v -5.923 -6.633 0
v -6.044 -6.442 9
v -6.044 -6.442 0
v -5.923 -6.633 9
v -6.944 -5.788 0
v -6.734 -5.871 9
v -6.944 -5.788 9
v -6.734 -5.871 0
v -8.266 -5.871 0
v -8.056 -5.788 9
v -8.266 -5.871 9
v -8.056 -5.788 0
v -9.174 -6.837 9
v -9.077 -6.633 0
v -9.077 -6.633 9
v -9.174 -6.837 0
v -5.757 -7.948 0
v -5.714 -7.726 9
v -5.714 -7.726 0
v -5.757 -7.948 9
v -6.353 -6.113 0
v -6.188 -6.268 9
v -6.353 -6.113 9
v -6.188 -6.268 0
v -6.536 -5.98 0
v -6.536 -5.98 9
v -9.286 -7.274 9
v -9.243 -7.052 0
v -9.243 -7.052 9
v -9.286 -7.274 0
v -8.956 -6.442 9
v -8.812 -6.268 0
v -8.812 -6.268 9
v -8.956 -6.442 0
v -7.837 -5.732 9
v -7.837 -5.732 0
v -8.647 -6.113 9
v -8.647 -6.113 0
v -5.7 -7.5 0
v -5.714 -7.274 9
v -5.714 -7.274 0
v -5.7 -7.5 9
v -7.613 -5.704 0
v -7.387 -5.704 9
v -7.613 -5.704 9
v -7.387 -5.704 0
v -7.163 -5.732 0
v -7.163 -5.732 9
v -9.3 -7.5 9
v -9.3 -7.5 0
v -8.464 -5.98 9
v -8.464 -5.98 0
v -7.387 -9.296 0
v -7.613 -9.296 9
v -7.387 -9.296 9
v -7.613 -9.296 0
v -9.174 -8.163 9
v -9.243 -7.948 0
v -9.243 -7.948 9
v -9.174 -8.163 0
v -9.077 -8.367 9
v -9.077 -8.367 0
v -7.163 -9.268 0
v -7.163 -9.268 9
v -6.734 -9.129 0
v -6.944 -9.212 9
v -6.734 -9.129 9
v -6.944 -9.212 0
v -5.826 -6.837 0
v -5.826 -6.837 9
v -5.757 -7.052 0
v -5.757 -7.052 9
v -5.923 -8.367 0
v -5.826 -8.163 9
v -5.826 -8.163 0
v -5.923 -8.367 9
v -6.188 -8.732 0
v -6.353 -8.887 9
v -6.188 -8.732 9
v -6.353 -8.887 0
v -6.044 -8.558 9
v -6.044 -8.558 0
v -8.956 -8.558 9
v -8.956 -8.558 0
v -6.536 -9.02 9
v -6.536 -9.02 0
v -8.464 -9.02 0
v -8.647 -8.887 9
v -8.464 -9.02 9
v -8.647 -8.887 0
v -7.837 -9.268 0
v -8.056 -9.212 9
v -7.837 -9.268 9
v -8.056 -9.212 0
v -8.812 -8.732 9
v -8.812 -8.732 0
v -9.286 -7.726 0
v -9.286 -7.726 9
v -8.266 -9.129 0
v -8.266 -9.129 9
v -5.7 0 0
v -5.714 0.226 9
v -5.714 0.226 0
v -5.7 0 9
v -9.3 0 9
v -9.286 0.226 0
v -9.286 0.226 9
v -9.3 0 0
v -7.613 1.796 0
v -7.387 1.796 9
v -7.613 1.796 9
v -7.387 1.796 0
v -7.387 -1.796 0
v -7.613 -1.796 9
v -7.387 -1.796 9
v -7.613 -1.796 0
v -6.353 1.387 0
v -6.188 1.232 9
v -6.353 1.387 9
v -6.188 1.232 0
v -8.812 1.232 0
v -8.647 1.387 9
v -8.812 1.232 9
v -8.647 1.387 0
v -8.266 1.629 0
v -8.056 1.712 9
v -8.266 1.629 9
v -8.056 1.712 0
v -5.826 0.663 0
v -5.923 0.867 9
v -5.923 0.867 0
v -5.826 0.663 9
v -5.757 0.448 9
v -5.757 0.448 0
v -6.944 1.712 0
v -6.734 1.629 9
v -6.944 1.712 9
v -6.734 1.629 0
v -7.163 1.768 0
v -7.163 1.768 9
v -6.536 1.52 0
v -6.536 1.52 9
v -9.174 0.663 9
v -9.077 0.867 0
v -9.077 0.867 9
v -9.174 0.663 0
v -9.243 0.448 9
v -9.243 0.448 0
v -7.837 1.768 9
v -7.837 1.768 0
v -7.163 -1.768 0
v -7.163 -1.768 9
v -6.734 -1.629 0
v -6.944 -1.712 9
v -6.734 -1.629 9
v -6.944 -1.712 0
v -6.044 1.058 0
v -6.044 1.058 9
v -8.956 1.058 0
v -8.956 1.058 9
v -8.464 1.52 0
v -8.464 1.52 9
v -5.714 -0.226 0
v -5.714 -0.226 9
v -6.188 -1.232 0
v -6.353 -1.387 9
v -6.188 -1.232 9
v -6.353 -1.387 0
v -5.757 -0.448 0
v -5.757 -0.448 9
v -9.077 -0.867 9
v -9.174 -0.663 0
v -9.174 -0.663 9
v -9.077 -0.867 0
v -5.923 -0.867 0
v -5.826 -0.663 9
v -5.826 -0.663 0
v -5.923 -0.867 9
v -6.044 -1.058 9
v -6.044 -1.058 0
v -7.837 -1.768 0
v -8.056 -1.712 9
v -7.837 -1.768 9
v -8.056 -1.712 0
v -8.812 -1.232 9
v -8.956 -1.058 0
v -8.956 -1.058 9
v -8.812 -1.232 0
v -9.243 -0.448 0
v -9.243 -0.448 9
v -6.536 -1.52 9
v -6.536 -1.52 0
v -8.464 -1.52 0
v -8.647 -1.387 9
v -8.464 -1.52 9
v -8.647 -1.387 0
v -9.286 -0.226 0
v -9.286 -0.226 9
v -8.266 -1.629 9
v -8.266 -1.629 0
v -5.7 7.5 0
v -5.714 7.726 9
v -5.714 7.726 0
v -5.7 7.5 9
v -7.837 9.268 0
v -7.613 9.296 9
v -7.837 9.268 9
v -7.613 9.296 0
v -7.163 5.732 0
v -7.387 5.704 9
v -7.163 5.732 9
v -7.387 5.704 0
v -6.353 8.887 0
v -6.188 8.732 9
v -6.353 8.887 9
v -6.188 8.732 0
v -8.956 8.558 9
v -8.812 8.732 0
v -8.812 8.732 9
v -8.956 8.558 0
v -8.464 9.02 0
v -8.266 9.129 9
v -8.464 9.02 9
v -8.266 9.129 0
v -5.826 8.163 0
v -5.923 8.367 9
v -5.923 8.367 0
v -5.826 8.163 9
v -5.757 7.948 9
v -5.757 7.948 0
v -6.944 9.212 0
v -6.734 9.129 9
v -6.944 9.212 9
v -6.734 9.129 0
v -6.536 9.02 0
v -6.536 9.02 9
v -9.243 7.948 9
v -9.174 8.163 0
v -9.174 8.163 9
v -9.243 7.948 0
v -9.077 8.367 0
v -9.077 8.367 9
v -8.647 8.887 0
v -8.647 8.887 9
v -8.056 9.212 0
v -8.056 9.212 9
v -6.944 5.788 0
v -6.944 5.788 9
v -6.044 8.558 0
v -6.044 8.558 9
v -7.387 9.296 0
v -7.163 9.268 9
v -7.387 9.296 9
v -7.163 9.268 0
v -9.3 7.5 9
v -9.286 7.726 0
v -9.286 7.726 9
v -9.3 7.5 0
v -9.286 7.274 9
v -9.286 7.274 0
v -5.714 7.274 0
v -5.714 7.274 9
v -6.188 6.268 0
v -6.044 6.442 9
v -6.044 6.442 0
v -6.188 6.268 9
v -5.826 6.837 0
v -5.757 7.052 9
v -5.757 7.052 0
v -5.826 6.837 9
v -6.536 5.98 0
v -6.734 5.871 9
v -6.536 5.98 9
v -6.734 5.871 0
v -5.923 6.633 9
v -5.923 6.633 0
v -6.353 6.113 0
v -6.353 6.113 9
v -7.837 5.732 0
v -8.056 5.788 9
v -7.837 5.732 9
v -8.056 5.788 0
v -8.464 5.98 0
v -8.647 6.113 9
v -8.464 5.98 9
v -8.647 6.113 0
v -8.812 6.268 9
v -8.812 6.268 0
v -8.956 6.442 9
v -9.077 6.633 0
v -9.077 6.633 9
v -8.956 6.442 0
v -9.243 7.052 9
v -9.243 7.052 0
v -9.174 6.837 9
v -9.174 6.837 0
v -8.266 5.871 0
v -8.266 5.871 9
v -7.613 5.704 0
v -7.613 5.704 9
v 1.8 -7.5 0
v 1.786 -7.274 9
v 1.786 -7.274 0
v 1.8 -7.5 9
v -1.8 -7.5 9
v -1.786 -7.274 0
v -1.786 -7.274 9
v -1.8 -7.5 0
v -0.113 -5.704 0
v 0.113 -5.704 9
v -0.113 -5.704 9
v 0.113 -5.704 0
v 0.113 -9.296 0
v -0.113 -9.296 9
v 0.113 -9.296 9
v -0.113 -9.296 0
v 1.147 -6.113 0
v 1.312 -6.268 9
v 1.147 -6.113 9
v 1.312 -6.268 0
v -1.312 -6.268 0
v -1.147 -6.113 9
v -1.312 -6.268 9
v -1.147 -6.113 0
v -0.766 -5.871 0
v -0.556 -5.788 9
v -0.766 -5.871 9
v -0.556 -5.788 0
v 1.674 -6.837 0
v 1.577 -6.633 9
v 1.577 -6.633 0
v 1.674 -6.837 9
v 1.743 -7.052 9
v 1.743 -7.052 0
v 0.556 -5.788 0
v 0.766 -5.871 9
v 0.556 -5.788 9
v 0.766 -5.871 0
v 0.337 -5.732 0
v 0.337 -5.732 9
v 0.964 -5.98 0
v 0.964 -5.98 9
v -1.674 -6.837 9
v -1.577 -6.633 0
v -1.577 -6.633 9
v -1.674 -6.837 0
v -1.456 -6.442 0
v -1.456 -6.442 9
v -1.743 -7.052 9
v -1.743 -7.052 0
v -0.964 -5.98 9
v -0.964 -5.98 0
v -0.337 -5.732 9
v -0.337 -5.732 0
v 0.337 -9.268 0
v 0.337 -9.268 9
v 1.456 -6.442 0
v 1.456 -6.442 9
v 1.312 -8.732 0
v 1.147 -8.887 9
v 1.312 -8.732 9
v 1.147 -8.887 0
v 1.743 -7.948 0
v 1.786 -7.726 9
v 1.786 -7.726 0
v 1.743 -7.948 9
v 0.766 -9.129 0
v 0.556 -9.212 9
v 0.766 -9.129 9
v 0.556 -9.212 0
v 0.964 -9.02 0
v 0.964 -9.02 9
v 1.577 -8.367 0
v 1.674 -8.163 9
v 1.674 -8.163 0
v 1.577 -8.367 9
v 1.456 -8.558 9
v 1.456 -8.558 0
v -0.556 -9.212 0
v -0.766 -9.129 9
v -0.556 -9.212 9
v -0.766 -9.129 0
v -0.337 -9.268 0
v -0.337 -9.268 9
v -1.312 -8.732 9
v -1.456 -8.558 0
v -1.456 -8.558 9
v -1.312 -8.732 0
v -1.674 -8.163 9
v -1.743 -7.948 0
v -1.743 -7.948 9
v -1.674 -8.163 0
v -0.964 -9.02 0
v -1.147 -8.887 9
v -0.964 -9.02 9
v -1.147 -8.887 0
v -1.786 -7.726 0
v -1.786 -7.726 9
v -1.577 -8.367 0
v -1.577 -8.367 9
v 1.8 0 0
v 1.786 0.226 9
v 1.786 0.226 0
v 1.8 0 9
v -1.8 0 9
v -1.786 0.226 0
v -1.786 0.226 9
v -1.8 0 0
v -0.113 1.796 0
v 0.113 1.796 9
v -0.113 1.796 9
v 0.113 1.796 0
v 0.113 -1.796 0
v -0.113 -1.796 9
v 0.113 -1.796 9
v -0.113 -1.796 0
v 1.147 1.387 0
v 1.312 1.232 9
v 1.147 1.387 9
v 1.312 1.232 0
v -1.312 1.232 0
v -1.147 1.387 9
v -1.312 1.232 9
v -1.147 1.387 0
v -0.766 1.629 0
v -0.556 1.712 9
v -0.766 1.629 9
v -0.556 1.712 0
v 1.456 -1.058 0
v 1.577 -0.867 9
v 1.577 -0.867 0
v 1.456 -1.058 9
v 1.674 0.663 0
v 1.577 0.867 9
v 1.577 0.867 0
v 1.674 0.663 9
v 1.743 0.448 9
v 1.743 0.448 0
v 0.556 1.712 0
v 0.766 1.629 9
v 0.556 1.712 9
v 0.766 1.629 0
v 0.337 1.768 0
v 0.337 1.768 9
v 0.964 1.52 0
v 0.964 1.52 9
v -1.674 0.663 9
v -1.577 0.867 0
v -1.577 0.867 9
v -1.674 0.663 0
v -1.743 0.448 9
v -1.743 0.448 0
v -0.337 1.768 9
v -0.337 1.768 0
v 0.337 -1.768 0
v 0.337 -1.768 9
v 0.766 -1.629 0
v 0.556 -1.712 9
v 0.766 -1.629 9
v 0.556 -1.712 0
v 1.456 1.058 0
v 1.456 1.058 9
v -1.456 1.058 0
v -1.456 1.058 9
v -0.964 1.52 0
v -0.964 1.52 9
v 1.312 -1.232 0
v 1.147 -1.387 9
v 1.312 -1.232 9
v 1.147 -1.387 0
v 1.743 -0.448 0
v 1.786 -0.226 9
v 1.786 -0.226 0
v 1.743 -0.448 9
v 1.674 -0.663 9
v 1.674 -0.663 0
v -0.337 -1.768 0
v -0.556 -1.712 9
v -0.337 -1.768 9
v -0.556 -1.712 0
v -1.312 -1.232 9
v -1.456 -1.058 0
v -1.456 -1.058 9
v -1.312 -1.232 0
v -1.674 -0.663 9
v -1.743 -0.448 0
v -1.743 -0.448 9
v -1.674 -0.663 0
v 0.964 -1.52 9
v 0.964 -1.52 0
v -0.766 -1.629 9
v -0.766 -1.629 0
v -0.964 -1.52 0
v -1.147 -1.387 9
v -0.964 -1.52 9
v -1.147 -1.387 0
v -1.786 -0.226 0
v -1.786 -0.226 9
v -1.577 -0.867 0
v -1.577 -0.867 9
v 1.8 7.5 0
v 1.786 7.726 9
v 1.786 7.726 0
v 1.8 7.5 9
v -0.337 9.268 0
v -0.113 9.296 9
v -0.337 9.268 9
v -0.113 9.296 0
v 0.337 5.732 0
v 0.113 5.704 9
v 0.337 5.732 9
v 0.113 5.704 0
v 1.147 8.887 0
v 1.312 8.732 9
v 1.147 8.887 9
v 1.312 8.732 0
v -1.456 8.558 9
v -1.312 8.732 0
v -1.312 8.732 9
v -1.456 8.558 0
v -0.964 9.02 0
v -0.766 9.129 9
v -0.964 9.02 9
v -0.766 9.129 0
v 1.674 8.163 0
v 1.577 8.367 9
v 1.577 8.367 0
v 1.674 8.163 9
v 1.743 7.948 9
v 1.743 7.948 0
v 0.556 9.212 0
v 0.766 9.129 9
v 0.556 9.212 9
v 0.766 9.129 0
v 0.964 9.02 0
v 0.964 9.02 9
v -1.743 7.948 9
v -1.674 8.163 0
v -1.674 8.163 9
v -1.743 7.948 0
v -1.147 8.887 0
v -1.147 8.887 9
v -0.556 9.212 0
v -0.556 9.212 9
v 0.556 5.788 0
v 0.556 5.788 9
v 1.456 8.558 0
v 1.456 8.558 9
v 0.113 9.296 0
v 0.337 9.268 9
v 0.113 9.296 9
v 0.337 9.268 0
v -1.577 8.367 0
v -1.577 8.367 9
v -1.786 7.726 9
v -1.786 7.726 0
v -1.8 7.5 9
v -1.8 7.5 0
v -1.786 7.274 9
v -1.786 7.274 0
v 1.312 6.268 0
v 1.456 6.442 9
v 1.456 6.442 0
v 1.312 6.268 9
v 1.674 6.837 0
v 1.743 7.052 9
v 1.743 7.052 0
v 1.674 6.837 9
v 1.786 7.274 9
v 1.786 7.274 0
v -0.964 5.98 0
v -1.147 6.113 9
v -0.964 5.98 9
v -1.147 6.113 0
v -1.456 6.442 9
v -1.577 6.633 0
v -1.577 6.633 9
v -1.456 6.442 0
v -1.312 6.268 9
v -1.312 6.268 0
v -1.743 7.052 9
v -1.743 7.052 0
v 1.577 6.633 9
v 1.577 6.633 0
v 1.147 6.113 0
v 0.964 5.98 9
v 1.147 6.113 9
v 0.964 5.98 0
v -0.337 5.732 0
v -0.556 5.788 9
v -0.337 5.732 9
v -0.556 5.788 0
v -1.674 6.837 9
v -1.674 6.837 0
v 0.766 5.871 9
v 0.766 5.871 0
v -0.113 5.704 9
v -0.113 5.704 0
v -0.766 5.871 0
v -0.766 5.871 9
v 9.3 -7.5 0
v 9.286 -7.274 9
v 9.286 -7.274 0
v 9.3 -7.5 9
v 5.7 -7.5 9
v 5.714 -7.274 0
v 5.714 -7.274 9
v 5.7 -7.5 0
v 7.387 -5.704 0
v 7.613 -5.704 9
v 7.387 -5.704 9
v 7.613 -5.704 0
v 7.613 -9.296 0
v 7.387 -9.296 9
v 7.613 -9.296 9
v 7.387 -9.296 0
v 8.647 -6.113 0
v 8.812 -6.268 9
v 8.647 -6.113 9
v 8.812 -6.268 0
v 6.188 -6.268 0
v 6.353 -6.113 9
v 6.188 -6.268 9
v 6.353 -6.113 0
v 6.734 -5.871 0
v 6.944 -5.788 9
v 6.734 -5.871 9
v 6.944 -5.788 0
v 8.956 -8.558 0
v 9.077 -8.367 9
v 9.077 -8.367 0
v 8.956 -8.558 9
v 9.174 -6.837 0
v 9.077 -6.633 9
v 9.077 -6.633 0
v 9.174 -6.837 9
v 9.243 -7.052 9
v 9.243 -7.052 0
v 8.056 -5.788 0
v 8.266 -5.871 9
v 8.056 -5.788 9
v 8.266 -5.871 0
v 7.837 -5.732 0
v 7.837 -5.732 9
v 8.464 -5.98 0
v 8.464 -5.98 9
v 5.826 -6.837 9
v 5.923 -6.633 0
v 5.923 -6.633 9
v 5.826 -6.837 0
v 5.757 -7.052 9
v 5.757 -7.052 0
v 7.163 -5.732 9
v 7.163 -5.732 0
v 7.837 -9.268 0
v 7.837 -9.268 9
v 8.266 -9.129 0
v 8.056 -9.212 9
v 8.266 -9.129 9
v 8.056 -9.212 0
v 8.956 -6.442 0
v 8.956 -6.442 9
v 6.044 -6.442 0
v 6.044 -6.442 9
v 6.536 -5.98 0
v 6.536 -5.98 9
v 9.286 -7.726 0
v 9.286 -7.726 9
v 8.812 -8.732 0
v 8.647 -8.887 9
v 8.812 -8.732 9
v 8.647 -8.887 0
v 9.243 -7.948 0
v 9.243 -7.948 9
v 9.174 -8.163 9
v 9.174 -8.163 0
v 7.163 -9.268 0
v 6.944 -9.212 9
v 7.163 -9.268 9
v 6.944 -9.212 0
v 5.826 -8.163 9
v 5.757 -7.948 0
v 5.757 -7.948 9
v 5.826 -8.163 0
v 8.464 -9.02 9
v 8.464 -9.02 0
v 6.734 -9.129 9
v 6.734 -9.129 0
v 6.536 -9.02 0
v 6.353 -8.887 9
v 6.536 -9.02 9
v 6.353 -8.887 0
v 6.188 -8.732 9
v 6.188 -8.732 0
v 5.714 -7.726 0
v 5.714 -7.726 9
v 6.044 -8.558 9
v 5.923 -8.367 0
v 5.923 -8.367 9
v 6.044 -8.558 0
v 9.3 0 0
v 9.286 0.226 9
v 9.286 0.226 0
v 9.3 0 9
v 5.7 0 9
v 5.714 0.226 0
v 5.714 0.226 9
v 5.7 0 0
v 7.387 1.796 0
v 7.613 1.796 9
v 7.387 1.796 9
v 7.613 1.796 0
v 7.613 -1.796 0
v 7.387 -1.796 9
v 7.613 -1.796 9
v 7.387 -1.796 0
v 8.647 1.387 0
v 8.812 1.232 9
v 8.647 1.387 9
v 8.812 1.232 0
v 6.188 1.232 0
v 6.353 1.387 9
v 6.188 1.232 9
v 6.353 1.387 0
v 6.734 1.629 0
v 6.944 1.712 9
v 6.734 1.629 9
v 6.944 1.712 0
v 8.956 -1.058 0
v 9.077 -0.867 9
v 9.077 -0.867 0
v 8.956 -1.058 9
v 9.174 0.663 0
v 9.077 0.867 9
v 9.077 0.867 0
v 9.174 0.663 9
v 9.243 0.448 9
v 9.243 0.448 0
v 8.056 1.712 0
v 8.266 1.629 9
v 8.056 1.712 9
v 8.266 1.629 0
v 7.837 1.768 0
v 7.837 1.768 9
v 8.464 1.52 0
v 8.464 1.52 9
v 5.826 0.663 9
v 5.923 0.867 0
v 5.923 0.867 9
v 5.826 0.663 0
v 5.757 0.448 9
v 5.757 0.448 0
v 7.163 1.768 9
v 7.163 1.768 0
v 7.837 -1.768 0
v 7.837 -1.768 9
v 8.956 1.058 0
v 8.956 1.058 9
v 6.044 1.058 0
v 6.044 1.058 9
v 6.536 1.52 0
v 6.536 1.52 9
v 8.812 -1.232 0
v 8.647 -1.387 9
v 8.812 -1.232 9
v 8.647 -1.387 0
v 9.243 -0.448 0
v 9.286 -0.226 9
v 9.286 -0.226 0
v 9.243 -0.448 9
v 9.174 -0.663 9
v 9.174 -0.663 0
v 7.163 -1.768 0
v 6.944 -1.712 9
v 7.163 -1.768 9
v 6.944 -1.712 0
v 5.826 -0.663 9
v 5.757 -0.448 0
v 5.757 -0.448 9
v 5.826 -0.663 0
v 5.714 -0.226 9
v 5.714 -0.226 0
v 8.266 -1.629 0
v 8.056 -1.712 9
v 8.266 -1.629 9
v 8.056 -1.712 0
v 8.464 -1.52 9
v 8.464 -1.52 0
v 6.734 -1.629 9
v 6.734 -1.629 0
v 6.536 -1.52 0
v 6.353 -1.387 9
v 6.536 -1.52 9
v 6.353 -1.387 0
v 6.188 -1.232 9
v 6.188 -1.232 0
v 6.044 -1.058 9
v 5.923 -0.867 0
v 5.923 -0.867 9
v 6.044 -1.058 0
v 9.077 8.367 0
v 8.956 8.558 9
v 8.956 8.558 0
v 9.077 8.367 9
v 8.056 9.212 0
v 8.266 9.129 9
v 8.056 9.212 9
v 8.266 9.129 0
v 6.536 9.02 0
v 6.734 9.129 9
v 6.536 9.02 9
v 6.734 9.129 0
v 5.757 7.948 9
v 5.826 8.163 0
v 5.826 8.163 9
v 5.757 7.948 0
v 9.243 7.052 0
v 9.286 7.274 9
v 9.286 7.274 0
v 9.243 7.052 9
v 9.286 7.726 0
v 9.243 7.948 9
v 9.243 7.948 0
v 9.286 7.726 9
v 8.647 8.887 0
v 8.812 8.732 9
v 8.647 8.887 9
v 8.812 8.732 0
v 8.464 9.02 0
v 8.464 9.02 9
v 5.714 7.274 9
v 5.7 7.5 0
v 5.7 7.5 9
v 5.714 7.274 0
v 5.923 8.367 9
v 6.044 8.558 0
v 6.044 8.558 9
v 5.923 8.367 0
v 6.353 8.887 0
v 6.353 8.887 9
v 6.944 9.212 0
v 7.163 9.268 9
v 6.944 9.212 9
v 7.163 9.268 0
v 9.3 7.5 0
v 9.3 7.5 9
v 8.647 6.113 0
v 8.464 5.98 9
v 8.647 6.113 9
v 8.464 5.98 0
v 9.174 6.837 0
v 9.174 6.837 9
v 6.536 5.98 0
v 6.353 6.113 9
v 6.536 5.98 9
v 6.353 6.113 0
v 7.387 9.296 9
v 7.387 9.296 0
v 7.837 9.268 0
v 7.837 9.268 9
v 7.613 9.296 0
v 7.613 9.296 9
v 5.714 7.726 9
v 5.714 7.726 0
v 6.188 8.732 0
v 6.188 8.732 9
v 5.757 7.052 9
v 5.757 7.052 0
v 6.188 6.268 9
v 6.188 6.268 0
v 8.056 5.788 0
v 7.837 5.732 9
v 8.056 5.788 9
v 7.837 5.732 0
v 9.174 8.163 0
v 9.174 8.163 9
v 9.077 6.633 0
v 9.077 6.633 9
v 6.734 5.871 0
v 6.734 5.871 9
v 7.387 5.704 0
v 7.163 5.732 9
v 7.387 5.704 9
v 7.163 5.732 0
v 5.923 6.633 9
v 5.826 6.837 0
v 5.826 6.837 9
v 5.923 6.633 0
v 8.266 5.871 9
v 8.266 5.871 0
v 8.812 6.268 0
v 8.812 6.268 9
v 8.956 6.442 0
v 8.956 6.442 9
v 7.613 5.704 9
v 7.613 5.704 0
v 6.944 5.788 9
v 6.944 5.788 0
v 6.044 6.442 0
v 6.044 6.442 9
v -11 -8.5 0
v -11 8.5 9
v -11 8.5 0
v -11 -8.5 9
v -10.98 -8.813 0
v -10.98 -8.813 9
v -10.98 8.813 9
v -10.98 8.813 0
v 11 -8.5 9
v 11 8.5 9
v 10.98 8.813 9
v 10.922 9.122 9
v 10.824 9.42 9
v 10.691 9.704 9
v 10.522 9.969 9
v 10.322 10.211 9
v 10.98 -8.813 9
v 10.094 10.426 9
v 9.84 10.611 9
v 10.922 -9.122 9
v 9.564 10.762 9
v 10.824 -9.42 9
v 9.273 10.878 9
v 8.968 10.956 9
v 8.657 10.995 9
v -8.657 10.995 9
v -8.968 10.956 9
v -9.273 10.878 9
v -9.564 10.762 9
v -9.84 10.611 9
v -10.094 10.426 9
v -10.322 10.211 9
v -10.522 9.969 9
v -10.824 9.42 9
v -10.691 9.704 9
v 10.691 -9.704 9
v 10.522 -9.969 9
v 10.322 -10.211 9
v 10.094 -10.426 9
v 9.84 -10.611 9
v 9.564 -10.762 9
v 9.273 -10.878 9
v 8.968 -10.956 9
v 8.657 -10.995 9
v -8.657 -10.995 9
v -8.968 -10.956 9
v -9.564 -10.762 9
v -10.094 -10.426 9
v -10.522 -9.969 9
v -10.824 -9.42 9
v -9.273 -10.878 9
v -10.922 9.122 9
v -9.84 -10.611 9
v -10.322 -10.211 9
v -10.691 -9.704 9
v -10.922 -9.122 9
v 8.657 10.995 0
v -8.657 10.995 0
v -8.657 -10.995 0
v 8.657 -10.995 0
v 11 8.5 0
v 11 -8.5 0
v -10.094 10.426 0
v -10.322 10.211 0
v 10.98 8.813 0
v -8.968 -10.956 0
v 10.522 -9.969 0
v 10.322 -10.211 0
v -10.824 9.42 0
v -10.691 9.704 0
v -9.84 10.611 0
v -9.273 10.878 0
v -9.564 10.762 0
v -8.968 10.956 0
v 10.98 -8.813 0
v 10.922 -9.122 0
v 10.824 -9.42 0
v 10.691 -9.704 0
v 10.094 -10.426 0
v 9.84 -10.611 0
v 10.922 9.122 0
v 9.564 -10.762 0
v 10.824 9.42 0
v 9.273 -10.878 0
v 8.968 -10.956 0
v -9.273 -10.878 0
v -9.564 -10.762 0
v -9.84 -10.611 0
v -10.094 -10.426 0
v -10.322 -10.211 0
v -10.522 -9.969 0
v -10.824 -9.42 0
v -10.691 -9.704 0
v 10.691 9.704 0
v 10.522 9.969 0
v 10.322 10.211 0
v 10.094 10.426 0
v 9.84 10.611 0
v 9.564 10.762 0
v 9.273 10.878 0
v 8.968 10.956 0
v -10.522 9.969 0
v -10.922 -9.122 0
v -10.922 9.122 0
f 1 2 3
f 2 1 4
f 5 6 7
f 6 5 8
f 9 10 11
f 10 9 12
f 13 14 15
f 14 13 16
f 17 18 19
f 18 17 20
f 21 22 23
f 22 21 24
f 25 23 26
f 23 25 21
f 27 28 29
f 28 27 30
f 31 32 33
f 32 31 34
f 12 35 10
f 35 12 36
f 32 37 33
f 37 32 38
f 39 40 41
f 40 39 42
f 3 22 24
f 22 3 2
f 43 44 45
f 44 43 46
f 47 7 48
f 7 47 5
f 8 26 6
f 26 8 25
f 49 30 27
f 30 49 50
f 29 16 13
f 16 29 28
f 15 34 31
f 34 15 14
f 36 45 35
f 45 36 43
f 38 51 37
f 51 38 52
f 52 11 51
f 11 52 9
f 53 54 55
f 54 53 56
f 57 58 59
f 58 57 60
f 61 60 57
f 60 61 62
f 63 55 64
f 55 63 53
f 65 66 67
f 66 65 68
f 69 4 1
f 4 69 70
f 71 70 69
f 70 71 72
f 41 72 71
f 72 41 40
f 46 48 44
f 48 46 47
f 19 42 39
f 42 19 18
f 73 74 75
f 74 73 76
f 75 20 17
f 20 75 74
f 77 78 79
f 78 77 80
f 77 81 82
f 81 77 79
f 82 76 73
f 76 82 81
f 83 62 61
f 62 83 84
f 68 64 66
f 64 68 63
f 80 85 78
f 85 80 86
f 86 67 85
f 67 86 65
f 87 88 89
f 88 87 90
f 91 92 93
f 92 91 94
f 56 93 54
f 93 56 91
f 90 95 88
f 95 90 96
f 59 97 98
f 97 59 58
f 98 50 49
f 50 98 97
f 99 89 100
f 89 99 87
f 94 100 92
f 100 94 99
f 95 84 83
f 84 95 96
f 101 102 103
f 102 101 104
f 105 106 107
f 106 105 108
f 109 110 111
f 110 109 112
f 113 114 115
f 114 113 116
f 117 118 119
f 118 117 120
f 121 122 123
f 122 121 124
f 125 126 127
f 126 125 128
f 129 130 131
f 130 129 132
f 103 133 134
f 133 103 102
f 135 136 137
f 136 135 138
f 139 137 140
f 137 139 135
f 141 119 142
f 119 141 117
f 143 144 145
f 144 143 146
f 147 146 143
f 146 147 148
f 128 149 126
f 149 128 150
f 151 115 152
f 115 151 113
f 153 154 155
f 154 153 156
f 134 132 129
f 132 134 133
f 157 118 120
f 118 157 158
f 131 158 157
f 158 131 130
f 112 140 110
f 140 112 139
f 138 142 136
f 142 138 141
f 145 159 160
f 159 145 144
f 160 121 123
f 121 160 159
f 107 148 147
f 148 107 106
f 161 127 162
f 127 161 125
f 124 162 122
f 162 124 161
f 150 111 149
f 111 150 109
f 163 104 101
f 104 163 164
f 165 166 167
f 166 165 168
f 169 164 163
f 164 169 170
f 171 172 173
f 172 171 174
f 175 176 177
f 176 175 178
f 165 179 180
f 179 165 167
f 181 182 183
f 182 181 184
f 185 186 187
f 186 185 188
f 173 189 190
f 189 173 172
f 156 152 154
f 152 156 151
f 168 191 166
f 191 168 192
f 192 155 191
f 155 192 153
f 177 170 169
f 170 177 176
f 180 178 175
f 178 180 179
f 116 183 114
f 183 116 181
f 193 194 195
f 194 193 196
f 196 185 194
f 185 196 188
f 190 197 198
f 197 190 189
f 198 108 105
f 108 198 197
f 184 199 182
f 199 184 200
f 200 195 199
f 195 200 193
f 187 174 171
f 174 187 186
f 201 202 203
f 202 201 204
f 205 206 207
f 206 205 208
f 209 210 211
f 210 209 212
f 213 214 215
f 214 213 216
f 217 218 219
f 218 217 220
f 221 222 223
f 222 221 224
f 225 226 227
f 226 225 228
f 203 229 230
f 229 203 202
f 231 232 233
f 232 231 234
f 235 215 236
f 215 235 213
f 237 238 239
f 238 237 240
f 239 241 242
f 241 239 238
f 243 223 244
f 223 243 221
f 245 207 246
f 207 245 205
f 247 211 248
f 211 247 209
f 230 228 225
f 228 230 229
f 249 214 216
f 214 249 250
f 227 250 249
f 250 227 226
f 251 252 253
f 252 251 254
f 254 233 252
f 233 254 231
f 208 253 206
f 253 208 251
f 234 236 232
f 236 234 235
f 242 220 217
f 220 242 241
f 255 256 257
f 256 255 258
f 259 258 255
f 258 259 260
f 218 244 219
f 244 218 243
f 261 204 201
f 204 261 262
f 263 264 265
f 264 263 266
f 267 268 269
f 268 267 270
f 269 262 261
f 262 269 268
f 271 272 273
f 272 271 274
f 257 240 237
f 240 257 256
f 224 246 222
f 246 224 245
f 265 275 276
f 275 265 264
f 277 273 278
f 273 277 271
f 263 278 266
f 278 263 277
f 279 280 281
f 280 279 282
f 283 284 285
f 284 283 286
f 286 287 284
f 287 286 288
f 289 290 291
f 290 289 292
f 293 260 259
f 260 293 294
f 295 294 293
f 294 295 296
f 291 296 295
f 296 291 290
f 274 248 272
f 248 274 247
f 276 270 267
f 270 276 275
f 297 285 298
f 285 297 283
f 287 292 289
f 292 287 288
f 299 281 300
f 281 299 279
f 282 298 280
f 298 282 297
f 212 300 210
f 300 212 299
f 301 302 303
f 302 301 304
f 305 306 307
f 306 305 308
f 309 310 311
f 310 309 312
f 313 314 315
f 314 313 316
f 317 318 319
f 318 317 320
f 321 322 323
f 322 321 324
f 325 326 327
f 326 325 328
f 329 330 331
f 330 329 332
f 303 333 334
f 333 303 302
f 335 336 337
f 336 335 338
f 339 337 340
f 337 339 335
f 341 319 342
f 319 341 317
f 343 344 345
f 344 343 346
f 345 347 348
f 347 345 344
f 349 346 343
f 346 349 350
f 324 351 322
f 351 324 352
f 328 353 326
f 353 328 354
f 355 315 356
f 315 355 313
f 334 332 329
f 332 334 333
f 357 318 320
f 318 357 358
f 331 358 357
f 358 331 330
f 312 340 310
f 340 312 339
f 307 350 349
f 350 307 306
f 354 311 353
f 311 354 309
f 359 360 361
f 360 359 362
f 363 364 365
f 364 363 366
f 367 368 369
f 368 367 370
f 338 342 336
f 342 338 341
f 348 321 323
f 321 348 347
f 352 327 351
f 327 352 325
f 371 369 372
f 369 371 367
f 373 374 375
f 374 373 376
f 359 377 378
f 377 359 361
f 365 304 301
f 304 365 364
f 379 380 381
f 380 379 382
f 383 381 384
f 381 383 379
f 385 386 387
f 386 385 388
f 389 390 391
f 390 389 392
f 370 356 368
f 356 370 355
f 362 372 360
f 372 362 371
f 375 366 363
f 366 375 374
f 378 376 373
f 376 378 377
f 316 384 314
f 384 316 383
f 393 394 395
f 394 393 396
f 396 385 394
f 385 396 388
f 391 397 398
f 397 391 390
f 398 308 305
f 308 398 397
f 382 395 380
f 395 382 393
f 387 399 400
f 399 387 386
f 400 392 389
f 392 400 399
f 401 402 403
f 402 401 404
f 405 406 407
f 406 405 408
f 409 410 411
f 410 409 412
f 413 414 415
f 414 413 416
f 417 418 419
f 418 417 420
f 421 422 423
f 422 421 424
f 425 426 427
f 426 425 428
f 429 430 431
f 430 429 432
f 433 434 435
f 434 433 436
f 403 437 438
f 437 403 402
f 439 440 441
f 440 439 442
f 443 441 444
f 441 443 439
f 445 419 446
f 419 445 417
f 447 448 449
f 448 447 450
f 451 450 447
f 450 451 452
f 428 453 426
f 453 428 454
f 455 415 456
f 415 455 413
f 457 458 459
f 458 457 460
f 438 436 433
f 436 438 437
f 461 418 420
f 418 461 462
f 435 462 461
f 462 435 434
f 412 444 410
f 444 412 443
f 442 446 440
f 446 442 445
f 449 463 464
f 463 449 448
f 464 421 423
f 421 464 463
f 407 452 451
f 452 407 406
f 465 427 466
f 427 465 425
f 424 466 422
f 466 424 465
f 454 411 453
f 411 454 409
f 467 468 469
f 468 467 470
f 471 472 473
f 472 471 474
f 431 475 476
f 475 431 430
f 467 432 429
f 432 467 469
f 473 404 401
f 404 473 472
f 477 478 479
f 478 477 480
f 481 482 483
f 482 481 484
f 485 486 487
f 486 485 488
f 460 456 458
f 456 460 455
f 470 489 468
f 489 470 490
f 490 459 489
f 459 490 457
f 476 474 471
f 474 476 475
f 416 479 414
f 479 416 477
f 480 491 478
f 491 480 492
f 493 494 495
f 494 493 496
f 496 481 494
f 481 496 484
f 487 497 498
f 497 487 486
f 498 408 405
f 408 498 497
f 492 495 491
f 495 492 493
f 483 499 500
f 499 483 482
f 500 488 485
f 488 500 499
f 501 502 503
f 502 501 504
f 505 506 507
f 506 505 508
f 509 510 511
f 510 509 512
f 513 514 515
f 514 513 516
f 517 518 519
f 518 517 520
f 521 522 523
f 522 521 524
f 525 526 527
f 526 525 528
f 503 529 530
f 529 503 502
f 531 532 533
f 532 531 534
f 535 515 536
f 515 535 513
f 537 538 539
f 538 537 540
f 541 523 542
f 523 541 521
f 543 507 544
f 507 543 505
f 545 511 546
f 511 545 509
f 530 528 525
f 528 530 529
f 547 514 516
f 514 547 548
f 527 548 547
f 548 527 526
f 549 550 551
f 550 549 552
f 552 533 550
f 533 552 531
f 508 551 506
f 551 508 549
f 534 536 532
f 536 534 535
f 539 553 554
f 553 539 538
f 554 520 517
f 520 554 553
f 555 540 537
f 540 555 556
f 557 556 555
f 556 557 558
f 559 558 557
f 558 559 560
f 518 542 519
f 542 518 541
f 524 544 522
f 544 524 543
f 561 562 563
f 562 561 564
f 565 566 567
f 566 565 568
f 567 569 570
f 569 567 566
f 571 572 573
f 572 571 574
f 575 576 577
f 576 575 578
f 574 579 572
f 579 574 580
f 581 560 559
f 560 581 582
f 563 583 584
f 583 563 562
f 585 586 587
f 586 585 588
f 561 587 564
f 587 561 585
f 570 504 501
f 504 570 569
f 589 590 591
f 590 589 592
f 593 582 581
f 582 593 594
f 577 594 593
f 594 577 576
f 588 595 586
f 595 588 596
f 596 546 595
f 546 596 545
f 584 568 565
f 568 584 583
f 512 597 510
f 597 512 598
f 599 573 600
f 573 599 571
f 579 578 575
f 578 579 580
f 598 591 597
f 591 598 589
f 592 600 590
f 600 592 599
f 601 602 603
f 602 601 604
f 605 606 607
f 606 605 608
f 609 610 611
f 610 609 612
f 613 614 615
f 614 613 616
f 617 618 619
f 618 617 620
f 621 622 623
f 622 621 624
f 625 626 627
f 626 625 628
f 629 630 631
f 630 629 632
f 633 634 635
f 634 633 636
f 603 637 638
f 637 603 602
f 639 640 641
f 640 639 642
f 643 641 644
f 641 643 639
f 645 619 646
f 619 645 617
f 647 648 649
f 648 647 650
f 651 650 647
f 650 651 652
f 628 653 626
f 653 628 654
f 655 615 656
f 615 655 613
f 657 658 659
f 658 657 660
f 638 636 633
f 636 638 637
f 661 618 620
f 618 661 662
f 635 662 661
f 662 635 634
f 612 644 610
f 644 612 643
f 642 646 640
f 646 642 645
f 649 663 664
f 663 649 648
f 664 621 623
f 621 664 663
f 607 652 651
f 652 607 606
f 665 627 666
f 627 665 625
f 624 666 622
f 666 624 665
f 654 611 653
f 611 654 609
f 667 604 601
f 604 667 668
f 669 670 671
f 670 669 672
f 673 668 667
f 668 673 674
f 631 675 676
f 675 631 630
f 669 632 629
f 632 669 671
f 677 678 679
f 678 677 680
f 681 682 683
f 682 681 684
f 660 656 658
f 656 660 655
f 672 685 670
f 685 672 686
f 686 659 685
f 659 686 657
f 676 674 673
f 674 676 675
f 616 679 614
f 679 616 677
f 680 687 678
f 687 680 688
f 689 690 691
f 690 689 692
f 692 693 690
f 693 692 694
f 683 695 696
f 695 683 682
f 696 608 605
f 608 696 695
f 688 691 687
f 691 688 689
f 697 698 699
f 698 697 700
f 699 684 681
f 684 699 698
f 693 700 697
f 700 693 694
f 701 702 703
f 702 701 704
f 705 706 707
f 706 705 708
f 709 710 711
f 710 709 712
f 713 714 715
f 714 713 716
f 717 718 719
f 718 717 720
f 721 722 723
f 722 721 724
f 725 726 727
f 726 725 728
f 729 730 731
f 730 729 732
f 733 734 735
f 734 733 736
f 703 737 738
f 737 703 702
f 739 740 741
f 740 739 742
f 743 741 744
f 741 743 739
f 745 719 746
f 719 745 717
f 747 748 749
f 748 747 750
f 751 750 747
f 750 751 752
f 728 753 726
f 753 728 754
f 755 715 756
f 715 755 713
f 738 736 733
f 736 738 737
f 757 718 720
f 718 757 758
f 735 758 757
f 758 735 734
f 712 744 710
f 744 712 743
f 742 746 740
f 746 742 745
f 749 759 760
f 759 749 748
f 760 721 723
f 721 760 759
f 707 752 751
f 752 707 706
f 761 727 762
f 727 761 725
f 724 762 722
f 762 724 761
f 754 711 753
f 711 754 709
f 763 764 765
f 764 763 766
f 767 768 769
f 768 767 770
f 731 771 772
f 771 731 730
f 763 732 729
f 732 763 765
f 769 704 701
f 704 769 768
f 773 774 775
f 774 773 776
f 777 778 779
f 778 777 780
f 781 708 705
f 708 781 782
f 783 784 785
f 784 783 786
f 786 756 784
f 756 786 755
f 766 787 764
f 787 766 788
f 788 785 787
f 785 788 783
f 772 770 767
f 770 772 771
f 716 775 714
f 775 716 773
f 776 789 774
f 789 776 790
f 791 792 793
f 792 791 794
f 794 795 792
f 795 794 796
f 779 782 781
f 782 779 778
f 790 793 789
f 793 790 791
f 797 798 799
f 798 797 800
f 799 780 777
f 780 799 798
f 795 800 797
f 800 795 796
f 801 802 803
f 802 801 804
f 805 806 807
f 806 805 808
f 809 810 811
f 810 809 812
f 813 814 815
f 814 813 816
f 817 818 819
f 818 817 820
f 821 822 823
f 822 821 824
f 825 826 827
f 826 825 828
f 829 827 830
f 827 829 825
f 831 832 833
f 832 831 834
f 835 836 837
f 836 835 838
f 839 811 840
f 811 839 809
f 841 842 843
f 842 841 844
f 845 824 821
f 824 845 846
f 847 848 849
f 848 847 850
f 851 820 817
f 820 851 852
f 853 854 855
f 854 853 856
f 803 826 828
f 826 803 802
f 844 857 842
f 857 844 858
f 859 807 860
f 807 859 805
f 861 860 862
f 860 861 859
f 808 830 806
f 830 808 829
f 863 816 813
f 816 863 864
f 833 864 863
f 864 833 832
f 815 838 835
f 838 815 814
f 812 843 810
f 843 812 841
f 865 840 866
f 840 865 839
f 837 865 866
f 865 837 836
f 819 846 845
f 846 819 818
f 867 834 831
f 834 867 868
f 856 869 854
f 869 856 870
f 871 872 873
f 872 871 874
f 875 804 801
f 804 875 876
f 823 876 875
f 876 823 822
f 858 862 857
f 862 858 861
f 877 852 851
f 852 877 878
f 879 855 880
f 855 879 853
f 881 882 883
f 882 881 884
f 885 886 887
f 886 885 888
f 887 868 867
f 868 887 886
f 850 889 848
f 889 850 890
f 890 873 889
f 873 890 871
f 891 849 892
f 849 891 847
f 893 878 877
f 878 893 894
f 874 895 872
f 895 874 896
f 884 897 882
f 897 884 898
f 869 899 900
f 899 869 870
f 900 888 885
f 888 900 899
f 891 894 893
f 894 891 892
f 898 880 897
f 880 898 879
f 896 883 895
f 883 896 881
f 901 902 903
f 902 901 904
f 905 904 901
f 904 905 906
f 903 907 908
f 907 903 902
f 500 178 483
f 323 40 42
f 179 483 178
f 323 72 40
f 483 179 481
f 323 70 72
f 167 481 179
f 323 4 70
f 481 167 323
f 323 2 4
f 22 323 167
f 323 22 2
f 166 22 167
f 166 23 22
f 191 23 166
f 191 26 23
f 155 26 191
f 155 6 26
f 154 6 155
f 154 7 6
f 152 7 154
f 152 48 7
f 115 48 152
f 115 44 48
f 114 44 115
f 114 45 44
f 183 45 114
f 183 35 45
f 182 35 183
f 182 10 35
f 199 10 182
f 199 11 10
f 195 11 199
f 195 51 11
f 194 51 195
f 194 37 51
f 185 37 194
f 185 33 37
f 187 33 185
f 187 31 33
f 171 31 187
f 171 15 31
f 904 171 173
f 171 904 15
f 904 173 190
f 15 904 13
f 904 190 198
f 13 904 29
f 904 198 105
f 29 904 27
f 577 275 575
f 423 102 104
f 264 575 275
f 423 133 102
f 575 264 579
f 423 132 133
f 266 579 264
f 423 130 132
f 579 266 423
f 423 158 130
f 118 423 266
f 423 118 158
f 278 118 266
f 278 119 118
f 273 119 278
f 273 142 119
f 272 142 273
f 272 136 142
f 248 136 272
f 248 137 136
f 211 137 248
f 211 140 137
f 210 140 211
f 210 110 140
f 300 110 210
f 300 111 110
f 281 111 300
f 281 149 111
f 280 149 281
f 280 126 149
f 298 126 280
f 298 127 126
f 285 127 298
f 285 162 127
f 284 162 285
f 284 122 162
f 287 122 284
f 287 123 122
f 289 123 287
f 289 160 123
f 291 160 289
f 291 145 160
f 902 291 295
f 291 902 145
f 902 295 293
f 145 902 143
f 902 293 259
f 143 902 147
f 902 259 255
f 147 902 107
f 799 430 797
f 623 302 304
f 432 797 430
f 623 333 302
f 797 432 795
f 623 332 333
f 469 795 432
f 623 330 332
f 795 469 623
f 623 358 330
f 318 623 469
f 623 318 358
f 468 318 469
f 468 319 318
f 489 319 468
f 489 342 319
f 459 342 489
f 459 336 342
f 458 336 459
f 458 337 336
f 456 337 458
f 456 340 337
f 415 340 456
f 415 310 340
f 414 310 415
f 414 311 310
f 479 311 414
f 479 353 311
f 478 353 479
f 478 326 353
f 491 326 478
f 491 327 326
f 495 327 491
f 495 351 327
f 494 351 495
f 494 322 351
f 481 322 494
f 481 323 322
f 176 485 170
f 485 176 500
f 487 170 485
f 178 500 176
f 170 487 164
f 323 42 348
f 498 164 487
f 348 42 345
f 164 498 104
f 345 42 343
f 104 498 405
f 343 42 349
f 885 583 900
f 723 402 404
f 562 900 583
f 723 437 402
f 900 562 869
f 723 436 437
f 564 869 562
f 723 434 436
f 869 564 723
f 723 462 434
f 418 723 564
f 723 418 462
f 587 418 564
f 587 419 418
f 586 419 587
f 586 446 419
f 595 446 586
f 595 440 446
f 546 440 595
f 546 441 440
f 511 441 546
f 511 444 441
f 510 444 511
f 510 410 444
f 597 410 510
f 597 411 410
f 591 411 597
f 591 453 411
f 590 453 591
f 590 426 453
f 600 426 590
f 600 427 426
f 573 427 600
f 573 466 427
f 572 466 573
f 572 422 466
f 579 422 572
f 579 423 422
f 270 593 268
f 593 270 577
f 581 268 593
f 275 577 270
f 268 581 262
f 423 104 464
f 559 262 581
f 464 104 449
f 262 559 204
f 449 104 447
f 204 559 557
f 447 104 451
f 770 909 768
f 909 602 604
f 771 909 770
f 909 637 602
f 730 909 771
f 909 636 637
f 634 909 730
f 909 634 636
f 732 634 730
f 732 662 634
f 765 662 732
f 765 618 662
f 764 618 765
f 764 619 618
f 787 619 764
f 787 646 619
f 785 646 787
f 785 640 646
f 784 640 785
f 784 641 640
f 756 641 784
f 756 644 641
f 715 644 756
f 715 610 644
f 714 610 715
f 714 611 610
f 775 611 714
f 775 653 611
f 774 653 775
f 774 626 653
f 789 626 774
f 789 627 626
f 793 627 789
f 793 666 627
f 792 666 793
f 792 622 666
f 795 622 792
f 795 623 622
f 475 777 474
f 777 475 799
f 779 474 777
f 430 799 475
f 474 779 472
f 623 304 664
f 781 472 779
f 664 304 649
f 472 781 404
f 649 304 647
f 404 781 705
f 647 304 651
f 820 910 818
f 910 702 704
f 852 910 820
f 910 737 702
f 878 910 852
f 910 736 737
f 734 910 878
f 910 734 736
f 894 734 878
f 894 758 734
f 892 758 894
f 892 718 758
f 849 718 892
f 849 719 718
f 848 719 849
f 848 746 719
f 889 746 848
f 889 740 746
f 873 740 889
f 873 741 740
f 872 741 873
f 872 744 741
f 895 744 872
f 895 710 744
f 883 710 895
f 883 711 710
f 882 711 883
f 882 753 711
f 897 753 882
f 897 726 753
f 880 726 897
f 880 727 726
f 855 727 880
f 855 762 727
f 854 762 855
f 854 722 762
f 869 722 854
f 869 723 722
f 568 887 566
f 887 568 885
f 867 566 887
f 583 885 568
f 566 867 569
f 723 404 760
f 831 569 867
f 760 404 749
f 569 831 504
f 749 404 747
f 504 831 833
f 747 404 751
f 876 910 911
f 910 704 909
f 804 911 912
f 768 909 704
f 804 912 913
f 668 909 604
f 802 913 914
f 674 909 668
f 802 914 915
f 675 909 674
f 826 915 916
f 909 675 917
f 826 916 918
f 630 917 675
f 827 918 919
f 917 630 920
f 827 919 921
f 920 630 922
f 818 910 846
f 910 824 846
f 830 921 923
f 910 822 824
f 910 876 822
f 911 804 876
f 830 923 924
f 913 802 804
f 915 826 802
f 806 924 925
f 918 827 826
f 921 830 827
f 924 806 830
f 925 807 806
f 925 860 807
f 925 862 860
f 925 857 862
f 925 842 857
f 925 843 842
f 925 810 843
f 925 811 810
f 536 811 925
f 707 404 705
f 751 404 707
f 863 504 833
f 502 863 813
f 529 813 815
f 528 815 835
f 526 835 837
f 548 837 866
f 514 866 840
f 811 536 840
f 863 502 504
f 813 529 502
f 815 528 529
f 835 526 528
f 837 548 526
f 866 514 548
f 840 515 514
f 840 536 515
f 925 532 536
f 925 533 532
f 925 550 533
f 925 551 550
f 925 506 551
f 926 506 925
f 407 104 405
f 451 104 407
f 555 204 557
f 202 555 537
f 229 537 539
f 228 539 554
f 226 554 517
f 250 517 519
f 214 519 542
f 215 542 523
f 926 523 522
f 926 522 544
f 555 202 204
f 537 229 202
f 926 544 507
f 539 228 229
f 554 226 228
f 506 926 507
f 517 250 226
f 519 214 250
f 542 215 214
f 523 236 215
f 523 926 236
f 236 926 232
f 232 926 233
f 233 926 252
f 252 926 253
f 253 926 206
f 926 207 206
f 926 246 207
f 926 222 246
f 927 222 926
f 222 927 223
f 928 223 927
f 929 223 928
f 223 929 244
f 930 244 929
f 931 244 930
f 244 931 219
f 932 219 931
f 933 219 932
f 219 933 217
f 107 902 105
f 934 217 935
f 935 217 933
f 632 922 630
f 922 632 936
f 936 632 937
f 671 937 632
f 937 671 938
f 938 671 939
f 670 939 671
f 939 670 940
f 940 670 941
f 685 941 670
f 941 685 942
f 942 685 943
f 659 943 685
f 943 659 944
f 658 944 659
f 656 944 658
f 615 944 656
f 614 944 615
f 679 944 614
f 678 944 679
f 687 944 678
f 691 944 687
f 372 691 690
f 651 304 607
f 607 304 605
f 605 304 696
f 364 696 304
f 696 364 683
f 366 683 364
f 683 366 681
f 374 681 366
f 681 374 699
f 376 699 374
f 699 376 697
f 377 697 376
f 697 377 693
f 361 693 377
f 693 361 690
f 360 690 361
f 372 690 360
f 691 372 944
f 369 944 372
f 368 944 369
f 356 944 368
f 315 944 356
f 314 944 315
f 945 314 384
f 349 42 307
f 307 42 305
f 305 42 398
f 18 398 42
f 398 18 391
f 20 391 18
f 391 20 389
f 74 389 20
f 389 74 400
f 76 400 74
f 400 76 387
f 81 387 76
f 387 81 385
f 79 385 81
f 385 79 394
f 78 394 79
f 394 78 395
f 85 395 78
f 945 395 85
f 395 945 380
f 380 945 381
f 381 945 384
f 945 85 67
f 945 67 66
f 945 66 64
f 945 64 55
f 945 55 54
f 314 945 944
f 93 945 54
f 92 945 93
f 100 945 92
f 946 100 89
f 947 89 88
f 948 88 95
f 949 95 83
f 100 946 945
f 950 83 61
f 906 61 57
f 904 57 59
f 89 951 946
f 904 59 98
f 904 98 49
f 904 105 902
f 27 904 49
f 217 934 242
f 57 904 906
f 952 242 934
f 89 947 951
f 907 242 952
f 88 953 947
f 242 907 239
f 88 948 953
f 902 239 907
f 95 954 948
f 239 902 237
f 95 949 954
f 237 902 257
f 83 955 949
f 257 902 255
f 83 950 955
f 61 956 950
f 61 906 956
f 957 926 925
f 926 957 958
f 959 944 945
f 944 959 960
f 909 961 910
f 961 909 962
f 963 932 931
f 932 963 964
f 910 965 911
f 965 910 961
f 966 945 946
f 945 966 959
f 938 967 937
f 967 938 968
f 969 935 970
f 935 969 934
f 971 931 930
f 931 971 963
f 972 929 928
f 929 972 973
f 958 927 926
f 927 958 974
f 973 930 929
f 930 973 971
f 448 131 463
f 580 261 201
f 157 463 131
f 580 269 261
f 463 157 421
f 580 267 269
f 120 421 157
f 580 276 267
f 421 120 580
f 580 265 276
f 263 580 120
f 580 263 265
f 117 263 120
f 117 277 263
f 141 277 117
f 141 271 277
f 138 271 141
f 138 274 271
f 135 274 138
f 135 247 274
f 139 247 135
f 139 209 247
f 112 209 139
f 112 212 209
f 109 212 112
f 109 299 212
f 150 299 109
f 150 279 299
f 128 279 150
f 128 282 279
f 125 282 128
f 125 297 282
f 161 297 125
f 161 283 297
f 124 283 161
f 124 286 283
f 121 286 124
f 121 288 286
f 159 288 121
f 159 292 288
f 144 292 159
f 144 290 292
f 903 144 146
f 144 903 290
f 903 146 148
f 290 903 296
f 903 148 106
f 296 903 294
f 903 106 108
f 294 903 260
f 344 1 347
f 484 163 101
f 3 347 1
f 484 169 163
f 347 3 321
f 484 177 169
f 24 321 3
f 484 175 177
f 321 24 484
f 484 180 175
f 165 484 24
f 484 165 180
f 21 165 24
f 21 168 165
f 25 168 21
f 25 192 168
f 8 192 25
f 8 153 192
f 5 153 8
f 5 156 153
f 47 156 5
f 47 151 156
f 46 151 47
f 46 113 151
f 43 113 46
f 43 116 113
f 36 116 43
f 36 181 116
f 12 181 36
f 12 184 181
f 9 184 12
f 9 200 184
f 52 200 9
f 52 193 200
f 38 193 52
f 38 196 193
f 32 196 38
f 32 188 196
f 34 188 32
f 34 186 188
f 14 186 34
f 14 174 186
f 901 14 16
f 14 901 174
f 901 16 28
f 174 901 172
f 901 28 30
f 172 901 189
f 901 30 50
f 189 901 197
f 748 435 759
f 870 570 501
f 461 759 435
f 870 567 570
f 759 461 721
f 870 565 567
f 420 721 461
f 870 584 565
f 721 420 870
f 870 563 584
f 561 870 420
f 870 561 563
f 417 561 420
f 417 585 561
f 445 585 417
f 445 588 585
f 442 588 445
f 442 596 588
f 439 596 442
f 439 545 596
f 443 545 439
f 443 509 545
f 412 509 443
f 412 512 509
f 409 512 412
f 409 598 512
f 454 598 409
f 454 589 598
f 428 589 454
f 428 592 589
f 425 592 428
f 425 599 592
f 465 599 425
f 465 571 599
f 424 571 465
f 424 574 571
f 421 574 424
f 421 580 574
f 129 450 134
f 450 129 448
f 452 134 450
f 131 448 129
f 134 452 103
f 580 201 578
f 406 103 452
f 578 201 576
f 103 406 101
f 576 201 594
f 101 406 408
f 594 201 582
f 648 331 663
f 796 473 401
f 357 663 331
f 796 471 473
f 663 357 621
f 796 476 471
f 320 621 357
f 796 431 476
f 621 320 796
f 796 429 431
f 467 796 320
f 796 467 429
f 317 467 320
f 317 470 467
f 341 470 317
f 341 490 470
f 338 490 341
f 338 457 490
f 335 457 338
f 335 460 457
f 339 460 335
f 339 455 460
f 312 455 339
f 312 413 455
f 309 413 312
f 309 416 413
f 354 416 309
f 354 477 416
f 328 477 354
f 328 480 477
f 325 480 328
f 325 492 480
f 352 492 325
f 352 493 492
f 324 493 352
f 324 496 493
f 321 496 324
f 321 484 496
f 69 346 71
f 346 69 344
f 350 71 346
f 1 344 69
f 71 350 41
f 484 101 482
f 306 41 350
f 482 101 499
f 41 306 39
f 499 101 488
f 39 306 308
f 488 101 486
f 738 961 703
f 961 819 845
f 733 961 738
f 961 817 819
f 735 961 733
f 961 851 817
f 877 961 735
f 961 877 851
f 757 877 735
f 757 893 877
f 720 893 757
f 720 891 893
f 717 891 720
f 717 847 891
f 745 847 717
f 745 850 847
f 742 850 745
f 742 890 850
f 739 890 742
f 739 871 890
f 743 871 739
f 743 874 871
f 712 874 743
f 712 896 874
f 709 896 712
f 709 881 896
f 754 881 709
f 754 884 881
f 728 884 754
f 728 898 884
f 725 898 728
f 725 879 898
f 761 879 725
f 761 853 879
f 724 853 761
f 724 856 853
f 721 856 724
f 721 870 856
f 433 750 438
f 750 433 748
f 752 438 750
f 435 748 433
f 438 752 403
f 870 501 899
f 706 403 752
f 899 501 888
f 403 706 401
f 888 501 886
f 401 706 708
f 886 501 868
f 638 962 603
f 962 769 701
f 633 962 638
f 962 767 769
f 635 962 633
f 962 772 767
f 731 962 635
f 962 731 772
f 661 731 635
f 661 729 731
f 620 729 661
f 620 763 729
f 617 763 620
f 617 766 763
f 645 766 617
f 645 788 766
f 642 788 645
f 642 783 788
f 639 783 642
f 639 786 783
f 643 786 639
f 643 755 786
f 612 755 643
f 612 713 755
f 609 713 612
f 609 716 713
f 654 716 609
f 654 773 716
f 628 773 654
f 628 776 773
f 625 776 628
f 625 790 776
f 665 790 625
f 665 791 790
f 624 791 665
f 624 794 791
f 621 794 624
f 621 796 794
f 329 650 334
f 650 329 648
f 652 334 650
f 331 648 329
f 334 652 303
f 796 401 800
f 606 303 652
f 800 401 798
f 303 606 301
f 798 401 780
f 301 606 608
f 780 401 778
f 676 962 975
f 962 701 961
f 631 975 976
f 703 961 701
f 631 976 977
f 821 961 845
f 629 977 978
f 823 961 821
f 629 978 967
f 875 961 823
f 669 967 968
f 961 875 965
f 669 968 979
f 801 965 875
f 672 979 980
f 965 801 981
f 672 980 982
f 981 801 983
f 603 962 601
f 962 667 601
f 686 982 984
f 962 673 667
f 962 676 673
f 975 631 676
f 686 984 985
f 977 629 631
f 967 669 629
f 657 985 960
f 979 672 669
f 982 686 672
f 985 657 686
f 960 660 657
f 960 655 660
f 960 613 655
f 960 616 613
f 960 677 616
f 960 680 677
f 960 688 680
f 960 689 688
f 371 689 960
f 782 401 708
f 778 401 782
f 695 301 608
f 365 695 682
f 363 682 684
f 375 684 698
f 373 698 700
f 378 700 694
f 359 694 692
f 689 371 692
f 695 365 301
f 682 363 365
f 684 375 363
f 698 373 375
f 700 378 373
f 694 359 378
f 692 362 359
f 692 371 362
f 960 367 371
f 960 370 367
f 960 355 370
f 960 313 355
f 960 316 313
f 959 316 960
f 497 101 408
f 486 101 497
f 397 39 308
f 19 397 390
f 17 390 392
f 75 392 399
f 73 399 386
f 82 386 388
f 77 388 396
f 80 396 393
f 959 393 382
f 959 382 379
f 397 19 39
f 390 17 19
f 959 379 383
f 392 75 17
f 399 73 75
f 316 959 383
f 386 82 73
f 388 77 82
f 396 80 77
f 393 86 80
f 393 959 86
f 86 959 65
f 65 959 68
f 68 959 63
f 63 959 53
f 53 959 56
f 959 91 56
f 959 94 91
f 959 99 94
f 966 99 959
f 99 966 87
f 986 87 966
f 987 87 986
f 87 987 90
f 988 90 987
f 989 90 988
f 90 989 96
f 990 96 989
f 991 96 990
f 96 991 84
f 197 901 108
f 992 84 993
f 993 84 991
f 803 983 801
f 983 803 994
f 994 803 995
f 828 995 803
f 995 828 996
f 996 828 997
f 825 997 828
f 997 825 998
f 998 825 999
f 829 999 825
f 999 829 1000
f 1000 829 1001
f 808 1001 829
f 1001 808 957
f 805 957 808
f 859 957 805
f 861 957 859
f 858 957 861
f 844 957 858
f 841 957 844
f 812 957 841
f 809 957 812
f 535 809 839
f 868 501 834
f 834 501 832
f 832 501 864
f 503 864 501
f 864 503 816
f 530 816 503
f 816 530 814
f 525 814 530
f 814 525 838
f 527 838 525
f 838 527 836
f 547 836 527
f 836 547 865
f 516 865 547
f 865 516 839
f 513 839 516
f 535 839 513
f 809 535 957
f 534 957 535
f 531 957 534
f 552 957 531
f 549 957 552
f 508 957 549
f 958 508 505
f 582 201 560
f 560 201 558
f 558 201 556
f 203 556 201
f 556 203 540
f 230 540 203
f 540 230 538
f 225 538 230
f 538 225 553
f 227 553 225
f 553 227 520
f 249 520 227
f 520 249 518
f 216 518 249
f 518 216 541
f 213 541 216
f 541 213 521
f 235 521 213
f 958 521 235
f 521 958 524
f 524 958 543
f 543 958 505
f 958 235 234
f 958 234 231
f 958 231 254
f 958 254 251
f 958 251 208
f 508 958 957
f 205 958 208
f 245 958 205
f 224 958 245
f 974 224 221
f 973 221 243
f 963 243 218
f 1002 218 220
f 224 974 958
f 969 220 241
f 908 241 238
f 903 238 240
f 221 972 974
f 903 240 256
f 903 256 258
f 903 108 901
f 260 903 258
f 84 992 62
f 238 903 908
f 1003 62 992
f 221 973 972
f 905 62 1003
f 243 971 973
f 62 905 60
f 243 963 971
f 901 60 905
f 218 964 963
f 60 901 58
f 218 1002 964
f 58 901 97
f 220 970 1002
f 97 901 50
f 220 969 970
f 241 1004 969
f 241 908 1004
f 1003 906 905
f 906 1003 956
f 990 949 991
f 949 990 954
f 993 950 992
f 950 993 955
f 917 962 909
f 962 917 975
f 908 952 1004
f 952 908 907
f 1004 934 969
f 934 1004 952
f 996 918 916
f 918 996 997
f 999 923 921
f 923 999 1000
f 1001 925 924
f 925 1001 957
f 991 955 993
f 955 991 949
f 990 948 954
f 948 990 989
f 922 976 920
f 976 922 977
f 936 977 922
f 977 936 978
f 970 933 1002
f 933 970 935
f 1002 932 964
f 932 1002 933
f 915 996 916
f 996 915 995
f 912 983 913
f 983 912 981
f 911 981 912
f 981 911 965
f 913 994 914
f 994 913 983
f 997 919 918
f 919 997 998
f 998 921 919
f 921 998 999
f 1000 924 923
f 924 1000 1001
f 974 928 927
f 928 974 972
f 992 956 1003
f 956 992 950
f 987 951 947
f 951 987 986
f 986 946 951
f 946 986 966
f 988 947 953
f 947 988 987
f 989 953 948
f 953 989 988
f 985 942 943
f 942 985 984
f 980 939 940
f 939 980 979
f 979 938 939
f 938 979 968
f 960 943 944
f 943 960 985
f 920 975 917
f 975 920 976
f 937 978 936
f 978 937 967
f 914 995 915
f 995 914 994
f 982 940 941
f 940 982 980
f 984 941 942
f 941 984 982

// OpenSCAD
$fn = 50;


difference() {
	union() {
		translate(v = [0, 0, 0]) {
			rotate(a = [0, 0, 0]) {
				hull() {
					translate(v = [-8.5000000000, 8.5000000000, 0]) {
						rotate(a = [0, 0, 0]) {
							translate(v = [0, 0, 0]) {
								rotate(a = [0, 0, 0]) {
									cylinder(h = 9, r = 2.5000000000);
								}
							}
						}
					}
					translate(v = [8.5000000000, 8.5000000000, 0]) {
						rotate(a = [0, 0, 0]) {
							translate(v = [0, 0, 0]) {
								rotate(a = [0, 0, 0]) {
									cylinder(h = 9, r = 2.5000000000);
								}
							}
						}
					}
					translate(v = [-8.5000000000, -8.5000000000, 0]) {
						rotate(a = [0, 0, 0]) {
							translate(v = [0, 0, 0]) {
								rotate(a = [0, 0, 0]) {
									cylinder(h = 9, r = 2.5000000000);
								}
							}
						}
					}
					translate(v = [8.5000000000, -8.5000000000, 0]) {
						rotate(a = [0, 0, 0]) {
							translate(v = [0, 0, 0]) {
								rotate(a = [0, 0, 0]) {
									cylinder(h = 9, r = 2.5000000000);
								}
							}
						}
					}
				}
			}
		}
	}
	union() {
		translate(v = [-7.5000000000, -7.5000000000, 0]) {
			rotate(a = [0, 0, 0]) {
				translate(v = [0, 0, -50]) {
					rotate(a = [0, 0, 0]) {
						cylinder(h = 100, r = 1.8000000000);
					}
				}
			}
		}
		translate(v = [-7.5000000000, 0.0000000000, 0]) {
			rotate(a = [0, 0, 0]) {
				translate(v = [0, 0, -50]) {
					rotate(a = [0, 0, 0]) {
						cylinder(h = 100, r = 1.8000000000);
					}
				}
			}
		}
		translate(v = [-7.5000000000, 7.5000000000, 0]) {
			rotate(a = [0, 0, 0]) {
				translate(v = [0, 0, -50]) {
					rotate(a = [0, 0, 0]) {
						cylinder(h = 100, r = 1.8000000000);
					}
				}
			}
		}
		translate(v = [0.0000000000, -7.5000000000, 0]) {
			rotate(a = [0, 0, 0]) {
				translate(v = [0, 0, -50]) {
					rotate(a = [0, 0, 0]) {
						cylinder(h = 100, r = 1.8000000000);
					}
				}
			}
		}
		translate(v = [0.0000000000, 0.0000000000, 0]) {
			rotate(a = [0, 0, 0]) {
				translate(v = [0, 0, -50]) {
					rotate(a = [0, 0, 0]) {
						cylinder(h = 100, r = 1.8000000000);
					}
				}
			}
		}
		translate(v = [0.0000000000, 7.5000000000, 0]) {
			rotate(a = [0, 0, 0]) {
				translate(v = [0, 0, -50]) {
					rotate(a = [0, 0, 0]) {
						cylinder(h = 100, r = 1.8000000000);
					}
				}
			}
		}
		translate(v = [7.5000000000, -7.5000000000, 0]) {
			rotate(a = [0, 0, 0]) {
				translate(v = [0, 0, -50]) {
					rotate(a = [0, 0, 0]) {
						cylinder(h = 100, r = 1.8000000000);
					}
				}
			}
		}
		translate(v = [7.5000000000, 0.0000000000, 0]) {
			rotate(a = [0, 0, 0]) {
				translate(v = [0, 0, -50]) {
					rotate(a = [0, 0, 0]) {
						cylinder(h = 100, r = 1.8000000000);
					}
				}
			}
		}
		translate(v = [7.5000000000, 7.5000000000, 0]) {
			rotate(a = [0, 0, 0]) {
				translate(v = [0, 0, -50]) {
					rotate(a = [0, 0, 0]) {
						cylinder(h = 100, r = 1.8000000000);
					}
				}
			}
		}
	}
}
